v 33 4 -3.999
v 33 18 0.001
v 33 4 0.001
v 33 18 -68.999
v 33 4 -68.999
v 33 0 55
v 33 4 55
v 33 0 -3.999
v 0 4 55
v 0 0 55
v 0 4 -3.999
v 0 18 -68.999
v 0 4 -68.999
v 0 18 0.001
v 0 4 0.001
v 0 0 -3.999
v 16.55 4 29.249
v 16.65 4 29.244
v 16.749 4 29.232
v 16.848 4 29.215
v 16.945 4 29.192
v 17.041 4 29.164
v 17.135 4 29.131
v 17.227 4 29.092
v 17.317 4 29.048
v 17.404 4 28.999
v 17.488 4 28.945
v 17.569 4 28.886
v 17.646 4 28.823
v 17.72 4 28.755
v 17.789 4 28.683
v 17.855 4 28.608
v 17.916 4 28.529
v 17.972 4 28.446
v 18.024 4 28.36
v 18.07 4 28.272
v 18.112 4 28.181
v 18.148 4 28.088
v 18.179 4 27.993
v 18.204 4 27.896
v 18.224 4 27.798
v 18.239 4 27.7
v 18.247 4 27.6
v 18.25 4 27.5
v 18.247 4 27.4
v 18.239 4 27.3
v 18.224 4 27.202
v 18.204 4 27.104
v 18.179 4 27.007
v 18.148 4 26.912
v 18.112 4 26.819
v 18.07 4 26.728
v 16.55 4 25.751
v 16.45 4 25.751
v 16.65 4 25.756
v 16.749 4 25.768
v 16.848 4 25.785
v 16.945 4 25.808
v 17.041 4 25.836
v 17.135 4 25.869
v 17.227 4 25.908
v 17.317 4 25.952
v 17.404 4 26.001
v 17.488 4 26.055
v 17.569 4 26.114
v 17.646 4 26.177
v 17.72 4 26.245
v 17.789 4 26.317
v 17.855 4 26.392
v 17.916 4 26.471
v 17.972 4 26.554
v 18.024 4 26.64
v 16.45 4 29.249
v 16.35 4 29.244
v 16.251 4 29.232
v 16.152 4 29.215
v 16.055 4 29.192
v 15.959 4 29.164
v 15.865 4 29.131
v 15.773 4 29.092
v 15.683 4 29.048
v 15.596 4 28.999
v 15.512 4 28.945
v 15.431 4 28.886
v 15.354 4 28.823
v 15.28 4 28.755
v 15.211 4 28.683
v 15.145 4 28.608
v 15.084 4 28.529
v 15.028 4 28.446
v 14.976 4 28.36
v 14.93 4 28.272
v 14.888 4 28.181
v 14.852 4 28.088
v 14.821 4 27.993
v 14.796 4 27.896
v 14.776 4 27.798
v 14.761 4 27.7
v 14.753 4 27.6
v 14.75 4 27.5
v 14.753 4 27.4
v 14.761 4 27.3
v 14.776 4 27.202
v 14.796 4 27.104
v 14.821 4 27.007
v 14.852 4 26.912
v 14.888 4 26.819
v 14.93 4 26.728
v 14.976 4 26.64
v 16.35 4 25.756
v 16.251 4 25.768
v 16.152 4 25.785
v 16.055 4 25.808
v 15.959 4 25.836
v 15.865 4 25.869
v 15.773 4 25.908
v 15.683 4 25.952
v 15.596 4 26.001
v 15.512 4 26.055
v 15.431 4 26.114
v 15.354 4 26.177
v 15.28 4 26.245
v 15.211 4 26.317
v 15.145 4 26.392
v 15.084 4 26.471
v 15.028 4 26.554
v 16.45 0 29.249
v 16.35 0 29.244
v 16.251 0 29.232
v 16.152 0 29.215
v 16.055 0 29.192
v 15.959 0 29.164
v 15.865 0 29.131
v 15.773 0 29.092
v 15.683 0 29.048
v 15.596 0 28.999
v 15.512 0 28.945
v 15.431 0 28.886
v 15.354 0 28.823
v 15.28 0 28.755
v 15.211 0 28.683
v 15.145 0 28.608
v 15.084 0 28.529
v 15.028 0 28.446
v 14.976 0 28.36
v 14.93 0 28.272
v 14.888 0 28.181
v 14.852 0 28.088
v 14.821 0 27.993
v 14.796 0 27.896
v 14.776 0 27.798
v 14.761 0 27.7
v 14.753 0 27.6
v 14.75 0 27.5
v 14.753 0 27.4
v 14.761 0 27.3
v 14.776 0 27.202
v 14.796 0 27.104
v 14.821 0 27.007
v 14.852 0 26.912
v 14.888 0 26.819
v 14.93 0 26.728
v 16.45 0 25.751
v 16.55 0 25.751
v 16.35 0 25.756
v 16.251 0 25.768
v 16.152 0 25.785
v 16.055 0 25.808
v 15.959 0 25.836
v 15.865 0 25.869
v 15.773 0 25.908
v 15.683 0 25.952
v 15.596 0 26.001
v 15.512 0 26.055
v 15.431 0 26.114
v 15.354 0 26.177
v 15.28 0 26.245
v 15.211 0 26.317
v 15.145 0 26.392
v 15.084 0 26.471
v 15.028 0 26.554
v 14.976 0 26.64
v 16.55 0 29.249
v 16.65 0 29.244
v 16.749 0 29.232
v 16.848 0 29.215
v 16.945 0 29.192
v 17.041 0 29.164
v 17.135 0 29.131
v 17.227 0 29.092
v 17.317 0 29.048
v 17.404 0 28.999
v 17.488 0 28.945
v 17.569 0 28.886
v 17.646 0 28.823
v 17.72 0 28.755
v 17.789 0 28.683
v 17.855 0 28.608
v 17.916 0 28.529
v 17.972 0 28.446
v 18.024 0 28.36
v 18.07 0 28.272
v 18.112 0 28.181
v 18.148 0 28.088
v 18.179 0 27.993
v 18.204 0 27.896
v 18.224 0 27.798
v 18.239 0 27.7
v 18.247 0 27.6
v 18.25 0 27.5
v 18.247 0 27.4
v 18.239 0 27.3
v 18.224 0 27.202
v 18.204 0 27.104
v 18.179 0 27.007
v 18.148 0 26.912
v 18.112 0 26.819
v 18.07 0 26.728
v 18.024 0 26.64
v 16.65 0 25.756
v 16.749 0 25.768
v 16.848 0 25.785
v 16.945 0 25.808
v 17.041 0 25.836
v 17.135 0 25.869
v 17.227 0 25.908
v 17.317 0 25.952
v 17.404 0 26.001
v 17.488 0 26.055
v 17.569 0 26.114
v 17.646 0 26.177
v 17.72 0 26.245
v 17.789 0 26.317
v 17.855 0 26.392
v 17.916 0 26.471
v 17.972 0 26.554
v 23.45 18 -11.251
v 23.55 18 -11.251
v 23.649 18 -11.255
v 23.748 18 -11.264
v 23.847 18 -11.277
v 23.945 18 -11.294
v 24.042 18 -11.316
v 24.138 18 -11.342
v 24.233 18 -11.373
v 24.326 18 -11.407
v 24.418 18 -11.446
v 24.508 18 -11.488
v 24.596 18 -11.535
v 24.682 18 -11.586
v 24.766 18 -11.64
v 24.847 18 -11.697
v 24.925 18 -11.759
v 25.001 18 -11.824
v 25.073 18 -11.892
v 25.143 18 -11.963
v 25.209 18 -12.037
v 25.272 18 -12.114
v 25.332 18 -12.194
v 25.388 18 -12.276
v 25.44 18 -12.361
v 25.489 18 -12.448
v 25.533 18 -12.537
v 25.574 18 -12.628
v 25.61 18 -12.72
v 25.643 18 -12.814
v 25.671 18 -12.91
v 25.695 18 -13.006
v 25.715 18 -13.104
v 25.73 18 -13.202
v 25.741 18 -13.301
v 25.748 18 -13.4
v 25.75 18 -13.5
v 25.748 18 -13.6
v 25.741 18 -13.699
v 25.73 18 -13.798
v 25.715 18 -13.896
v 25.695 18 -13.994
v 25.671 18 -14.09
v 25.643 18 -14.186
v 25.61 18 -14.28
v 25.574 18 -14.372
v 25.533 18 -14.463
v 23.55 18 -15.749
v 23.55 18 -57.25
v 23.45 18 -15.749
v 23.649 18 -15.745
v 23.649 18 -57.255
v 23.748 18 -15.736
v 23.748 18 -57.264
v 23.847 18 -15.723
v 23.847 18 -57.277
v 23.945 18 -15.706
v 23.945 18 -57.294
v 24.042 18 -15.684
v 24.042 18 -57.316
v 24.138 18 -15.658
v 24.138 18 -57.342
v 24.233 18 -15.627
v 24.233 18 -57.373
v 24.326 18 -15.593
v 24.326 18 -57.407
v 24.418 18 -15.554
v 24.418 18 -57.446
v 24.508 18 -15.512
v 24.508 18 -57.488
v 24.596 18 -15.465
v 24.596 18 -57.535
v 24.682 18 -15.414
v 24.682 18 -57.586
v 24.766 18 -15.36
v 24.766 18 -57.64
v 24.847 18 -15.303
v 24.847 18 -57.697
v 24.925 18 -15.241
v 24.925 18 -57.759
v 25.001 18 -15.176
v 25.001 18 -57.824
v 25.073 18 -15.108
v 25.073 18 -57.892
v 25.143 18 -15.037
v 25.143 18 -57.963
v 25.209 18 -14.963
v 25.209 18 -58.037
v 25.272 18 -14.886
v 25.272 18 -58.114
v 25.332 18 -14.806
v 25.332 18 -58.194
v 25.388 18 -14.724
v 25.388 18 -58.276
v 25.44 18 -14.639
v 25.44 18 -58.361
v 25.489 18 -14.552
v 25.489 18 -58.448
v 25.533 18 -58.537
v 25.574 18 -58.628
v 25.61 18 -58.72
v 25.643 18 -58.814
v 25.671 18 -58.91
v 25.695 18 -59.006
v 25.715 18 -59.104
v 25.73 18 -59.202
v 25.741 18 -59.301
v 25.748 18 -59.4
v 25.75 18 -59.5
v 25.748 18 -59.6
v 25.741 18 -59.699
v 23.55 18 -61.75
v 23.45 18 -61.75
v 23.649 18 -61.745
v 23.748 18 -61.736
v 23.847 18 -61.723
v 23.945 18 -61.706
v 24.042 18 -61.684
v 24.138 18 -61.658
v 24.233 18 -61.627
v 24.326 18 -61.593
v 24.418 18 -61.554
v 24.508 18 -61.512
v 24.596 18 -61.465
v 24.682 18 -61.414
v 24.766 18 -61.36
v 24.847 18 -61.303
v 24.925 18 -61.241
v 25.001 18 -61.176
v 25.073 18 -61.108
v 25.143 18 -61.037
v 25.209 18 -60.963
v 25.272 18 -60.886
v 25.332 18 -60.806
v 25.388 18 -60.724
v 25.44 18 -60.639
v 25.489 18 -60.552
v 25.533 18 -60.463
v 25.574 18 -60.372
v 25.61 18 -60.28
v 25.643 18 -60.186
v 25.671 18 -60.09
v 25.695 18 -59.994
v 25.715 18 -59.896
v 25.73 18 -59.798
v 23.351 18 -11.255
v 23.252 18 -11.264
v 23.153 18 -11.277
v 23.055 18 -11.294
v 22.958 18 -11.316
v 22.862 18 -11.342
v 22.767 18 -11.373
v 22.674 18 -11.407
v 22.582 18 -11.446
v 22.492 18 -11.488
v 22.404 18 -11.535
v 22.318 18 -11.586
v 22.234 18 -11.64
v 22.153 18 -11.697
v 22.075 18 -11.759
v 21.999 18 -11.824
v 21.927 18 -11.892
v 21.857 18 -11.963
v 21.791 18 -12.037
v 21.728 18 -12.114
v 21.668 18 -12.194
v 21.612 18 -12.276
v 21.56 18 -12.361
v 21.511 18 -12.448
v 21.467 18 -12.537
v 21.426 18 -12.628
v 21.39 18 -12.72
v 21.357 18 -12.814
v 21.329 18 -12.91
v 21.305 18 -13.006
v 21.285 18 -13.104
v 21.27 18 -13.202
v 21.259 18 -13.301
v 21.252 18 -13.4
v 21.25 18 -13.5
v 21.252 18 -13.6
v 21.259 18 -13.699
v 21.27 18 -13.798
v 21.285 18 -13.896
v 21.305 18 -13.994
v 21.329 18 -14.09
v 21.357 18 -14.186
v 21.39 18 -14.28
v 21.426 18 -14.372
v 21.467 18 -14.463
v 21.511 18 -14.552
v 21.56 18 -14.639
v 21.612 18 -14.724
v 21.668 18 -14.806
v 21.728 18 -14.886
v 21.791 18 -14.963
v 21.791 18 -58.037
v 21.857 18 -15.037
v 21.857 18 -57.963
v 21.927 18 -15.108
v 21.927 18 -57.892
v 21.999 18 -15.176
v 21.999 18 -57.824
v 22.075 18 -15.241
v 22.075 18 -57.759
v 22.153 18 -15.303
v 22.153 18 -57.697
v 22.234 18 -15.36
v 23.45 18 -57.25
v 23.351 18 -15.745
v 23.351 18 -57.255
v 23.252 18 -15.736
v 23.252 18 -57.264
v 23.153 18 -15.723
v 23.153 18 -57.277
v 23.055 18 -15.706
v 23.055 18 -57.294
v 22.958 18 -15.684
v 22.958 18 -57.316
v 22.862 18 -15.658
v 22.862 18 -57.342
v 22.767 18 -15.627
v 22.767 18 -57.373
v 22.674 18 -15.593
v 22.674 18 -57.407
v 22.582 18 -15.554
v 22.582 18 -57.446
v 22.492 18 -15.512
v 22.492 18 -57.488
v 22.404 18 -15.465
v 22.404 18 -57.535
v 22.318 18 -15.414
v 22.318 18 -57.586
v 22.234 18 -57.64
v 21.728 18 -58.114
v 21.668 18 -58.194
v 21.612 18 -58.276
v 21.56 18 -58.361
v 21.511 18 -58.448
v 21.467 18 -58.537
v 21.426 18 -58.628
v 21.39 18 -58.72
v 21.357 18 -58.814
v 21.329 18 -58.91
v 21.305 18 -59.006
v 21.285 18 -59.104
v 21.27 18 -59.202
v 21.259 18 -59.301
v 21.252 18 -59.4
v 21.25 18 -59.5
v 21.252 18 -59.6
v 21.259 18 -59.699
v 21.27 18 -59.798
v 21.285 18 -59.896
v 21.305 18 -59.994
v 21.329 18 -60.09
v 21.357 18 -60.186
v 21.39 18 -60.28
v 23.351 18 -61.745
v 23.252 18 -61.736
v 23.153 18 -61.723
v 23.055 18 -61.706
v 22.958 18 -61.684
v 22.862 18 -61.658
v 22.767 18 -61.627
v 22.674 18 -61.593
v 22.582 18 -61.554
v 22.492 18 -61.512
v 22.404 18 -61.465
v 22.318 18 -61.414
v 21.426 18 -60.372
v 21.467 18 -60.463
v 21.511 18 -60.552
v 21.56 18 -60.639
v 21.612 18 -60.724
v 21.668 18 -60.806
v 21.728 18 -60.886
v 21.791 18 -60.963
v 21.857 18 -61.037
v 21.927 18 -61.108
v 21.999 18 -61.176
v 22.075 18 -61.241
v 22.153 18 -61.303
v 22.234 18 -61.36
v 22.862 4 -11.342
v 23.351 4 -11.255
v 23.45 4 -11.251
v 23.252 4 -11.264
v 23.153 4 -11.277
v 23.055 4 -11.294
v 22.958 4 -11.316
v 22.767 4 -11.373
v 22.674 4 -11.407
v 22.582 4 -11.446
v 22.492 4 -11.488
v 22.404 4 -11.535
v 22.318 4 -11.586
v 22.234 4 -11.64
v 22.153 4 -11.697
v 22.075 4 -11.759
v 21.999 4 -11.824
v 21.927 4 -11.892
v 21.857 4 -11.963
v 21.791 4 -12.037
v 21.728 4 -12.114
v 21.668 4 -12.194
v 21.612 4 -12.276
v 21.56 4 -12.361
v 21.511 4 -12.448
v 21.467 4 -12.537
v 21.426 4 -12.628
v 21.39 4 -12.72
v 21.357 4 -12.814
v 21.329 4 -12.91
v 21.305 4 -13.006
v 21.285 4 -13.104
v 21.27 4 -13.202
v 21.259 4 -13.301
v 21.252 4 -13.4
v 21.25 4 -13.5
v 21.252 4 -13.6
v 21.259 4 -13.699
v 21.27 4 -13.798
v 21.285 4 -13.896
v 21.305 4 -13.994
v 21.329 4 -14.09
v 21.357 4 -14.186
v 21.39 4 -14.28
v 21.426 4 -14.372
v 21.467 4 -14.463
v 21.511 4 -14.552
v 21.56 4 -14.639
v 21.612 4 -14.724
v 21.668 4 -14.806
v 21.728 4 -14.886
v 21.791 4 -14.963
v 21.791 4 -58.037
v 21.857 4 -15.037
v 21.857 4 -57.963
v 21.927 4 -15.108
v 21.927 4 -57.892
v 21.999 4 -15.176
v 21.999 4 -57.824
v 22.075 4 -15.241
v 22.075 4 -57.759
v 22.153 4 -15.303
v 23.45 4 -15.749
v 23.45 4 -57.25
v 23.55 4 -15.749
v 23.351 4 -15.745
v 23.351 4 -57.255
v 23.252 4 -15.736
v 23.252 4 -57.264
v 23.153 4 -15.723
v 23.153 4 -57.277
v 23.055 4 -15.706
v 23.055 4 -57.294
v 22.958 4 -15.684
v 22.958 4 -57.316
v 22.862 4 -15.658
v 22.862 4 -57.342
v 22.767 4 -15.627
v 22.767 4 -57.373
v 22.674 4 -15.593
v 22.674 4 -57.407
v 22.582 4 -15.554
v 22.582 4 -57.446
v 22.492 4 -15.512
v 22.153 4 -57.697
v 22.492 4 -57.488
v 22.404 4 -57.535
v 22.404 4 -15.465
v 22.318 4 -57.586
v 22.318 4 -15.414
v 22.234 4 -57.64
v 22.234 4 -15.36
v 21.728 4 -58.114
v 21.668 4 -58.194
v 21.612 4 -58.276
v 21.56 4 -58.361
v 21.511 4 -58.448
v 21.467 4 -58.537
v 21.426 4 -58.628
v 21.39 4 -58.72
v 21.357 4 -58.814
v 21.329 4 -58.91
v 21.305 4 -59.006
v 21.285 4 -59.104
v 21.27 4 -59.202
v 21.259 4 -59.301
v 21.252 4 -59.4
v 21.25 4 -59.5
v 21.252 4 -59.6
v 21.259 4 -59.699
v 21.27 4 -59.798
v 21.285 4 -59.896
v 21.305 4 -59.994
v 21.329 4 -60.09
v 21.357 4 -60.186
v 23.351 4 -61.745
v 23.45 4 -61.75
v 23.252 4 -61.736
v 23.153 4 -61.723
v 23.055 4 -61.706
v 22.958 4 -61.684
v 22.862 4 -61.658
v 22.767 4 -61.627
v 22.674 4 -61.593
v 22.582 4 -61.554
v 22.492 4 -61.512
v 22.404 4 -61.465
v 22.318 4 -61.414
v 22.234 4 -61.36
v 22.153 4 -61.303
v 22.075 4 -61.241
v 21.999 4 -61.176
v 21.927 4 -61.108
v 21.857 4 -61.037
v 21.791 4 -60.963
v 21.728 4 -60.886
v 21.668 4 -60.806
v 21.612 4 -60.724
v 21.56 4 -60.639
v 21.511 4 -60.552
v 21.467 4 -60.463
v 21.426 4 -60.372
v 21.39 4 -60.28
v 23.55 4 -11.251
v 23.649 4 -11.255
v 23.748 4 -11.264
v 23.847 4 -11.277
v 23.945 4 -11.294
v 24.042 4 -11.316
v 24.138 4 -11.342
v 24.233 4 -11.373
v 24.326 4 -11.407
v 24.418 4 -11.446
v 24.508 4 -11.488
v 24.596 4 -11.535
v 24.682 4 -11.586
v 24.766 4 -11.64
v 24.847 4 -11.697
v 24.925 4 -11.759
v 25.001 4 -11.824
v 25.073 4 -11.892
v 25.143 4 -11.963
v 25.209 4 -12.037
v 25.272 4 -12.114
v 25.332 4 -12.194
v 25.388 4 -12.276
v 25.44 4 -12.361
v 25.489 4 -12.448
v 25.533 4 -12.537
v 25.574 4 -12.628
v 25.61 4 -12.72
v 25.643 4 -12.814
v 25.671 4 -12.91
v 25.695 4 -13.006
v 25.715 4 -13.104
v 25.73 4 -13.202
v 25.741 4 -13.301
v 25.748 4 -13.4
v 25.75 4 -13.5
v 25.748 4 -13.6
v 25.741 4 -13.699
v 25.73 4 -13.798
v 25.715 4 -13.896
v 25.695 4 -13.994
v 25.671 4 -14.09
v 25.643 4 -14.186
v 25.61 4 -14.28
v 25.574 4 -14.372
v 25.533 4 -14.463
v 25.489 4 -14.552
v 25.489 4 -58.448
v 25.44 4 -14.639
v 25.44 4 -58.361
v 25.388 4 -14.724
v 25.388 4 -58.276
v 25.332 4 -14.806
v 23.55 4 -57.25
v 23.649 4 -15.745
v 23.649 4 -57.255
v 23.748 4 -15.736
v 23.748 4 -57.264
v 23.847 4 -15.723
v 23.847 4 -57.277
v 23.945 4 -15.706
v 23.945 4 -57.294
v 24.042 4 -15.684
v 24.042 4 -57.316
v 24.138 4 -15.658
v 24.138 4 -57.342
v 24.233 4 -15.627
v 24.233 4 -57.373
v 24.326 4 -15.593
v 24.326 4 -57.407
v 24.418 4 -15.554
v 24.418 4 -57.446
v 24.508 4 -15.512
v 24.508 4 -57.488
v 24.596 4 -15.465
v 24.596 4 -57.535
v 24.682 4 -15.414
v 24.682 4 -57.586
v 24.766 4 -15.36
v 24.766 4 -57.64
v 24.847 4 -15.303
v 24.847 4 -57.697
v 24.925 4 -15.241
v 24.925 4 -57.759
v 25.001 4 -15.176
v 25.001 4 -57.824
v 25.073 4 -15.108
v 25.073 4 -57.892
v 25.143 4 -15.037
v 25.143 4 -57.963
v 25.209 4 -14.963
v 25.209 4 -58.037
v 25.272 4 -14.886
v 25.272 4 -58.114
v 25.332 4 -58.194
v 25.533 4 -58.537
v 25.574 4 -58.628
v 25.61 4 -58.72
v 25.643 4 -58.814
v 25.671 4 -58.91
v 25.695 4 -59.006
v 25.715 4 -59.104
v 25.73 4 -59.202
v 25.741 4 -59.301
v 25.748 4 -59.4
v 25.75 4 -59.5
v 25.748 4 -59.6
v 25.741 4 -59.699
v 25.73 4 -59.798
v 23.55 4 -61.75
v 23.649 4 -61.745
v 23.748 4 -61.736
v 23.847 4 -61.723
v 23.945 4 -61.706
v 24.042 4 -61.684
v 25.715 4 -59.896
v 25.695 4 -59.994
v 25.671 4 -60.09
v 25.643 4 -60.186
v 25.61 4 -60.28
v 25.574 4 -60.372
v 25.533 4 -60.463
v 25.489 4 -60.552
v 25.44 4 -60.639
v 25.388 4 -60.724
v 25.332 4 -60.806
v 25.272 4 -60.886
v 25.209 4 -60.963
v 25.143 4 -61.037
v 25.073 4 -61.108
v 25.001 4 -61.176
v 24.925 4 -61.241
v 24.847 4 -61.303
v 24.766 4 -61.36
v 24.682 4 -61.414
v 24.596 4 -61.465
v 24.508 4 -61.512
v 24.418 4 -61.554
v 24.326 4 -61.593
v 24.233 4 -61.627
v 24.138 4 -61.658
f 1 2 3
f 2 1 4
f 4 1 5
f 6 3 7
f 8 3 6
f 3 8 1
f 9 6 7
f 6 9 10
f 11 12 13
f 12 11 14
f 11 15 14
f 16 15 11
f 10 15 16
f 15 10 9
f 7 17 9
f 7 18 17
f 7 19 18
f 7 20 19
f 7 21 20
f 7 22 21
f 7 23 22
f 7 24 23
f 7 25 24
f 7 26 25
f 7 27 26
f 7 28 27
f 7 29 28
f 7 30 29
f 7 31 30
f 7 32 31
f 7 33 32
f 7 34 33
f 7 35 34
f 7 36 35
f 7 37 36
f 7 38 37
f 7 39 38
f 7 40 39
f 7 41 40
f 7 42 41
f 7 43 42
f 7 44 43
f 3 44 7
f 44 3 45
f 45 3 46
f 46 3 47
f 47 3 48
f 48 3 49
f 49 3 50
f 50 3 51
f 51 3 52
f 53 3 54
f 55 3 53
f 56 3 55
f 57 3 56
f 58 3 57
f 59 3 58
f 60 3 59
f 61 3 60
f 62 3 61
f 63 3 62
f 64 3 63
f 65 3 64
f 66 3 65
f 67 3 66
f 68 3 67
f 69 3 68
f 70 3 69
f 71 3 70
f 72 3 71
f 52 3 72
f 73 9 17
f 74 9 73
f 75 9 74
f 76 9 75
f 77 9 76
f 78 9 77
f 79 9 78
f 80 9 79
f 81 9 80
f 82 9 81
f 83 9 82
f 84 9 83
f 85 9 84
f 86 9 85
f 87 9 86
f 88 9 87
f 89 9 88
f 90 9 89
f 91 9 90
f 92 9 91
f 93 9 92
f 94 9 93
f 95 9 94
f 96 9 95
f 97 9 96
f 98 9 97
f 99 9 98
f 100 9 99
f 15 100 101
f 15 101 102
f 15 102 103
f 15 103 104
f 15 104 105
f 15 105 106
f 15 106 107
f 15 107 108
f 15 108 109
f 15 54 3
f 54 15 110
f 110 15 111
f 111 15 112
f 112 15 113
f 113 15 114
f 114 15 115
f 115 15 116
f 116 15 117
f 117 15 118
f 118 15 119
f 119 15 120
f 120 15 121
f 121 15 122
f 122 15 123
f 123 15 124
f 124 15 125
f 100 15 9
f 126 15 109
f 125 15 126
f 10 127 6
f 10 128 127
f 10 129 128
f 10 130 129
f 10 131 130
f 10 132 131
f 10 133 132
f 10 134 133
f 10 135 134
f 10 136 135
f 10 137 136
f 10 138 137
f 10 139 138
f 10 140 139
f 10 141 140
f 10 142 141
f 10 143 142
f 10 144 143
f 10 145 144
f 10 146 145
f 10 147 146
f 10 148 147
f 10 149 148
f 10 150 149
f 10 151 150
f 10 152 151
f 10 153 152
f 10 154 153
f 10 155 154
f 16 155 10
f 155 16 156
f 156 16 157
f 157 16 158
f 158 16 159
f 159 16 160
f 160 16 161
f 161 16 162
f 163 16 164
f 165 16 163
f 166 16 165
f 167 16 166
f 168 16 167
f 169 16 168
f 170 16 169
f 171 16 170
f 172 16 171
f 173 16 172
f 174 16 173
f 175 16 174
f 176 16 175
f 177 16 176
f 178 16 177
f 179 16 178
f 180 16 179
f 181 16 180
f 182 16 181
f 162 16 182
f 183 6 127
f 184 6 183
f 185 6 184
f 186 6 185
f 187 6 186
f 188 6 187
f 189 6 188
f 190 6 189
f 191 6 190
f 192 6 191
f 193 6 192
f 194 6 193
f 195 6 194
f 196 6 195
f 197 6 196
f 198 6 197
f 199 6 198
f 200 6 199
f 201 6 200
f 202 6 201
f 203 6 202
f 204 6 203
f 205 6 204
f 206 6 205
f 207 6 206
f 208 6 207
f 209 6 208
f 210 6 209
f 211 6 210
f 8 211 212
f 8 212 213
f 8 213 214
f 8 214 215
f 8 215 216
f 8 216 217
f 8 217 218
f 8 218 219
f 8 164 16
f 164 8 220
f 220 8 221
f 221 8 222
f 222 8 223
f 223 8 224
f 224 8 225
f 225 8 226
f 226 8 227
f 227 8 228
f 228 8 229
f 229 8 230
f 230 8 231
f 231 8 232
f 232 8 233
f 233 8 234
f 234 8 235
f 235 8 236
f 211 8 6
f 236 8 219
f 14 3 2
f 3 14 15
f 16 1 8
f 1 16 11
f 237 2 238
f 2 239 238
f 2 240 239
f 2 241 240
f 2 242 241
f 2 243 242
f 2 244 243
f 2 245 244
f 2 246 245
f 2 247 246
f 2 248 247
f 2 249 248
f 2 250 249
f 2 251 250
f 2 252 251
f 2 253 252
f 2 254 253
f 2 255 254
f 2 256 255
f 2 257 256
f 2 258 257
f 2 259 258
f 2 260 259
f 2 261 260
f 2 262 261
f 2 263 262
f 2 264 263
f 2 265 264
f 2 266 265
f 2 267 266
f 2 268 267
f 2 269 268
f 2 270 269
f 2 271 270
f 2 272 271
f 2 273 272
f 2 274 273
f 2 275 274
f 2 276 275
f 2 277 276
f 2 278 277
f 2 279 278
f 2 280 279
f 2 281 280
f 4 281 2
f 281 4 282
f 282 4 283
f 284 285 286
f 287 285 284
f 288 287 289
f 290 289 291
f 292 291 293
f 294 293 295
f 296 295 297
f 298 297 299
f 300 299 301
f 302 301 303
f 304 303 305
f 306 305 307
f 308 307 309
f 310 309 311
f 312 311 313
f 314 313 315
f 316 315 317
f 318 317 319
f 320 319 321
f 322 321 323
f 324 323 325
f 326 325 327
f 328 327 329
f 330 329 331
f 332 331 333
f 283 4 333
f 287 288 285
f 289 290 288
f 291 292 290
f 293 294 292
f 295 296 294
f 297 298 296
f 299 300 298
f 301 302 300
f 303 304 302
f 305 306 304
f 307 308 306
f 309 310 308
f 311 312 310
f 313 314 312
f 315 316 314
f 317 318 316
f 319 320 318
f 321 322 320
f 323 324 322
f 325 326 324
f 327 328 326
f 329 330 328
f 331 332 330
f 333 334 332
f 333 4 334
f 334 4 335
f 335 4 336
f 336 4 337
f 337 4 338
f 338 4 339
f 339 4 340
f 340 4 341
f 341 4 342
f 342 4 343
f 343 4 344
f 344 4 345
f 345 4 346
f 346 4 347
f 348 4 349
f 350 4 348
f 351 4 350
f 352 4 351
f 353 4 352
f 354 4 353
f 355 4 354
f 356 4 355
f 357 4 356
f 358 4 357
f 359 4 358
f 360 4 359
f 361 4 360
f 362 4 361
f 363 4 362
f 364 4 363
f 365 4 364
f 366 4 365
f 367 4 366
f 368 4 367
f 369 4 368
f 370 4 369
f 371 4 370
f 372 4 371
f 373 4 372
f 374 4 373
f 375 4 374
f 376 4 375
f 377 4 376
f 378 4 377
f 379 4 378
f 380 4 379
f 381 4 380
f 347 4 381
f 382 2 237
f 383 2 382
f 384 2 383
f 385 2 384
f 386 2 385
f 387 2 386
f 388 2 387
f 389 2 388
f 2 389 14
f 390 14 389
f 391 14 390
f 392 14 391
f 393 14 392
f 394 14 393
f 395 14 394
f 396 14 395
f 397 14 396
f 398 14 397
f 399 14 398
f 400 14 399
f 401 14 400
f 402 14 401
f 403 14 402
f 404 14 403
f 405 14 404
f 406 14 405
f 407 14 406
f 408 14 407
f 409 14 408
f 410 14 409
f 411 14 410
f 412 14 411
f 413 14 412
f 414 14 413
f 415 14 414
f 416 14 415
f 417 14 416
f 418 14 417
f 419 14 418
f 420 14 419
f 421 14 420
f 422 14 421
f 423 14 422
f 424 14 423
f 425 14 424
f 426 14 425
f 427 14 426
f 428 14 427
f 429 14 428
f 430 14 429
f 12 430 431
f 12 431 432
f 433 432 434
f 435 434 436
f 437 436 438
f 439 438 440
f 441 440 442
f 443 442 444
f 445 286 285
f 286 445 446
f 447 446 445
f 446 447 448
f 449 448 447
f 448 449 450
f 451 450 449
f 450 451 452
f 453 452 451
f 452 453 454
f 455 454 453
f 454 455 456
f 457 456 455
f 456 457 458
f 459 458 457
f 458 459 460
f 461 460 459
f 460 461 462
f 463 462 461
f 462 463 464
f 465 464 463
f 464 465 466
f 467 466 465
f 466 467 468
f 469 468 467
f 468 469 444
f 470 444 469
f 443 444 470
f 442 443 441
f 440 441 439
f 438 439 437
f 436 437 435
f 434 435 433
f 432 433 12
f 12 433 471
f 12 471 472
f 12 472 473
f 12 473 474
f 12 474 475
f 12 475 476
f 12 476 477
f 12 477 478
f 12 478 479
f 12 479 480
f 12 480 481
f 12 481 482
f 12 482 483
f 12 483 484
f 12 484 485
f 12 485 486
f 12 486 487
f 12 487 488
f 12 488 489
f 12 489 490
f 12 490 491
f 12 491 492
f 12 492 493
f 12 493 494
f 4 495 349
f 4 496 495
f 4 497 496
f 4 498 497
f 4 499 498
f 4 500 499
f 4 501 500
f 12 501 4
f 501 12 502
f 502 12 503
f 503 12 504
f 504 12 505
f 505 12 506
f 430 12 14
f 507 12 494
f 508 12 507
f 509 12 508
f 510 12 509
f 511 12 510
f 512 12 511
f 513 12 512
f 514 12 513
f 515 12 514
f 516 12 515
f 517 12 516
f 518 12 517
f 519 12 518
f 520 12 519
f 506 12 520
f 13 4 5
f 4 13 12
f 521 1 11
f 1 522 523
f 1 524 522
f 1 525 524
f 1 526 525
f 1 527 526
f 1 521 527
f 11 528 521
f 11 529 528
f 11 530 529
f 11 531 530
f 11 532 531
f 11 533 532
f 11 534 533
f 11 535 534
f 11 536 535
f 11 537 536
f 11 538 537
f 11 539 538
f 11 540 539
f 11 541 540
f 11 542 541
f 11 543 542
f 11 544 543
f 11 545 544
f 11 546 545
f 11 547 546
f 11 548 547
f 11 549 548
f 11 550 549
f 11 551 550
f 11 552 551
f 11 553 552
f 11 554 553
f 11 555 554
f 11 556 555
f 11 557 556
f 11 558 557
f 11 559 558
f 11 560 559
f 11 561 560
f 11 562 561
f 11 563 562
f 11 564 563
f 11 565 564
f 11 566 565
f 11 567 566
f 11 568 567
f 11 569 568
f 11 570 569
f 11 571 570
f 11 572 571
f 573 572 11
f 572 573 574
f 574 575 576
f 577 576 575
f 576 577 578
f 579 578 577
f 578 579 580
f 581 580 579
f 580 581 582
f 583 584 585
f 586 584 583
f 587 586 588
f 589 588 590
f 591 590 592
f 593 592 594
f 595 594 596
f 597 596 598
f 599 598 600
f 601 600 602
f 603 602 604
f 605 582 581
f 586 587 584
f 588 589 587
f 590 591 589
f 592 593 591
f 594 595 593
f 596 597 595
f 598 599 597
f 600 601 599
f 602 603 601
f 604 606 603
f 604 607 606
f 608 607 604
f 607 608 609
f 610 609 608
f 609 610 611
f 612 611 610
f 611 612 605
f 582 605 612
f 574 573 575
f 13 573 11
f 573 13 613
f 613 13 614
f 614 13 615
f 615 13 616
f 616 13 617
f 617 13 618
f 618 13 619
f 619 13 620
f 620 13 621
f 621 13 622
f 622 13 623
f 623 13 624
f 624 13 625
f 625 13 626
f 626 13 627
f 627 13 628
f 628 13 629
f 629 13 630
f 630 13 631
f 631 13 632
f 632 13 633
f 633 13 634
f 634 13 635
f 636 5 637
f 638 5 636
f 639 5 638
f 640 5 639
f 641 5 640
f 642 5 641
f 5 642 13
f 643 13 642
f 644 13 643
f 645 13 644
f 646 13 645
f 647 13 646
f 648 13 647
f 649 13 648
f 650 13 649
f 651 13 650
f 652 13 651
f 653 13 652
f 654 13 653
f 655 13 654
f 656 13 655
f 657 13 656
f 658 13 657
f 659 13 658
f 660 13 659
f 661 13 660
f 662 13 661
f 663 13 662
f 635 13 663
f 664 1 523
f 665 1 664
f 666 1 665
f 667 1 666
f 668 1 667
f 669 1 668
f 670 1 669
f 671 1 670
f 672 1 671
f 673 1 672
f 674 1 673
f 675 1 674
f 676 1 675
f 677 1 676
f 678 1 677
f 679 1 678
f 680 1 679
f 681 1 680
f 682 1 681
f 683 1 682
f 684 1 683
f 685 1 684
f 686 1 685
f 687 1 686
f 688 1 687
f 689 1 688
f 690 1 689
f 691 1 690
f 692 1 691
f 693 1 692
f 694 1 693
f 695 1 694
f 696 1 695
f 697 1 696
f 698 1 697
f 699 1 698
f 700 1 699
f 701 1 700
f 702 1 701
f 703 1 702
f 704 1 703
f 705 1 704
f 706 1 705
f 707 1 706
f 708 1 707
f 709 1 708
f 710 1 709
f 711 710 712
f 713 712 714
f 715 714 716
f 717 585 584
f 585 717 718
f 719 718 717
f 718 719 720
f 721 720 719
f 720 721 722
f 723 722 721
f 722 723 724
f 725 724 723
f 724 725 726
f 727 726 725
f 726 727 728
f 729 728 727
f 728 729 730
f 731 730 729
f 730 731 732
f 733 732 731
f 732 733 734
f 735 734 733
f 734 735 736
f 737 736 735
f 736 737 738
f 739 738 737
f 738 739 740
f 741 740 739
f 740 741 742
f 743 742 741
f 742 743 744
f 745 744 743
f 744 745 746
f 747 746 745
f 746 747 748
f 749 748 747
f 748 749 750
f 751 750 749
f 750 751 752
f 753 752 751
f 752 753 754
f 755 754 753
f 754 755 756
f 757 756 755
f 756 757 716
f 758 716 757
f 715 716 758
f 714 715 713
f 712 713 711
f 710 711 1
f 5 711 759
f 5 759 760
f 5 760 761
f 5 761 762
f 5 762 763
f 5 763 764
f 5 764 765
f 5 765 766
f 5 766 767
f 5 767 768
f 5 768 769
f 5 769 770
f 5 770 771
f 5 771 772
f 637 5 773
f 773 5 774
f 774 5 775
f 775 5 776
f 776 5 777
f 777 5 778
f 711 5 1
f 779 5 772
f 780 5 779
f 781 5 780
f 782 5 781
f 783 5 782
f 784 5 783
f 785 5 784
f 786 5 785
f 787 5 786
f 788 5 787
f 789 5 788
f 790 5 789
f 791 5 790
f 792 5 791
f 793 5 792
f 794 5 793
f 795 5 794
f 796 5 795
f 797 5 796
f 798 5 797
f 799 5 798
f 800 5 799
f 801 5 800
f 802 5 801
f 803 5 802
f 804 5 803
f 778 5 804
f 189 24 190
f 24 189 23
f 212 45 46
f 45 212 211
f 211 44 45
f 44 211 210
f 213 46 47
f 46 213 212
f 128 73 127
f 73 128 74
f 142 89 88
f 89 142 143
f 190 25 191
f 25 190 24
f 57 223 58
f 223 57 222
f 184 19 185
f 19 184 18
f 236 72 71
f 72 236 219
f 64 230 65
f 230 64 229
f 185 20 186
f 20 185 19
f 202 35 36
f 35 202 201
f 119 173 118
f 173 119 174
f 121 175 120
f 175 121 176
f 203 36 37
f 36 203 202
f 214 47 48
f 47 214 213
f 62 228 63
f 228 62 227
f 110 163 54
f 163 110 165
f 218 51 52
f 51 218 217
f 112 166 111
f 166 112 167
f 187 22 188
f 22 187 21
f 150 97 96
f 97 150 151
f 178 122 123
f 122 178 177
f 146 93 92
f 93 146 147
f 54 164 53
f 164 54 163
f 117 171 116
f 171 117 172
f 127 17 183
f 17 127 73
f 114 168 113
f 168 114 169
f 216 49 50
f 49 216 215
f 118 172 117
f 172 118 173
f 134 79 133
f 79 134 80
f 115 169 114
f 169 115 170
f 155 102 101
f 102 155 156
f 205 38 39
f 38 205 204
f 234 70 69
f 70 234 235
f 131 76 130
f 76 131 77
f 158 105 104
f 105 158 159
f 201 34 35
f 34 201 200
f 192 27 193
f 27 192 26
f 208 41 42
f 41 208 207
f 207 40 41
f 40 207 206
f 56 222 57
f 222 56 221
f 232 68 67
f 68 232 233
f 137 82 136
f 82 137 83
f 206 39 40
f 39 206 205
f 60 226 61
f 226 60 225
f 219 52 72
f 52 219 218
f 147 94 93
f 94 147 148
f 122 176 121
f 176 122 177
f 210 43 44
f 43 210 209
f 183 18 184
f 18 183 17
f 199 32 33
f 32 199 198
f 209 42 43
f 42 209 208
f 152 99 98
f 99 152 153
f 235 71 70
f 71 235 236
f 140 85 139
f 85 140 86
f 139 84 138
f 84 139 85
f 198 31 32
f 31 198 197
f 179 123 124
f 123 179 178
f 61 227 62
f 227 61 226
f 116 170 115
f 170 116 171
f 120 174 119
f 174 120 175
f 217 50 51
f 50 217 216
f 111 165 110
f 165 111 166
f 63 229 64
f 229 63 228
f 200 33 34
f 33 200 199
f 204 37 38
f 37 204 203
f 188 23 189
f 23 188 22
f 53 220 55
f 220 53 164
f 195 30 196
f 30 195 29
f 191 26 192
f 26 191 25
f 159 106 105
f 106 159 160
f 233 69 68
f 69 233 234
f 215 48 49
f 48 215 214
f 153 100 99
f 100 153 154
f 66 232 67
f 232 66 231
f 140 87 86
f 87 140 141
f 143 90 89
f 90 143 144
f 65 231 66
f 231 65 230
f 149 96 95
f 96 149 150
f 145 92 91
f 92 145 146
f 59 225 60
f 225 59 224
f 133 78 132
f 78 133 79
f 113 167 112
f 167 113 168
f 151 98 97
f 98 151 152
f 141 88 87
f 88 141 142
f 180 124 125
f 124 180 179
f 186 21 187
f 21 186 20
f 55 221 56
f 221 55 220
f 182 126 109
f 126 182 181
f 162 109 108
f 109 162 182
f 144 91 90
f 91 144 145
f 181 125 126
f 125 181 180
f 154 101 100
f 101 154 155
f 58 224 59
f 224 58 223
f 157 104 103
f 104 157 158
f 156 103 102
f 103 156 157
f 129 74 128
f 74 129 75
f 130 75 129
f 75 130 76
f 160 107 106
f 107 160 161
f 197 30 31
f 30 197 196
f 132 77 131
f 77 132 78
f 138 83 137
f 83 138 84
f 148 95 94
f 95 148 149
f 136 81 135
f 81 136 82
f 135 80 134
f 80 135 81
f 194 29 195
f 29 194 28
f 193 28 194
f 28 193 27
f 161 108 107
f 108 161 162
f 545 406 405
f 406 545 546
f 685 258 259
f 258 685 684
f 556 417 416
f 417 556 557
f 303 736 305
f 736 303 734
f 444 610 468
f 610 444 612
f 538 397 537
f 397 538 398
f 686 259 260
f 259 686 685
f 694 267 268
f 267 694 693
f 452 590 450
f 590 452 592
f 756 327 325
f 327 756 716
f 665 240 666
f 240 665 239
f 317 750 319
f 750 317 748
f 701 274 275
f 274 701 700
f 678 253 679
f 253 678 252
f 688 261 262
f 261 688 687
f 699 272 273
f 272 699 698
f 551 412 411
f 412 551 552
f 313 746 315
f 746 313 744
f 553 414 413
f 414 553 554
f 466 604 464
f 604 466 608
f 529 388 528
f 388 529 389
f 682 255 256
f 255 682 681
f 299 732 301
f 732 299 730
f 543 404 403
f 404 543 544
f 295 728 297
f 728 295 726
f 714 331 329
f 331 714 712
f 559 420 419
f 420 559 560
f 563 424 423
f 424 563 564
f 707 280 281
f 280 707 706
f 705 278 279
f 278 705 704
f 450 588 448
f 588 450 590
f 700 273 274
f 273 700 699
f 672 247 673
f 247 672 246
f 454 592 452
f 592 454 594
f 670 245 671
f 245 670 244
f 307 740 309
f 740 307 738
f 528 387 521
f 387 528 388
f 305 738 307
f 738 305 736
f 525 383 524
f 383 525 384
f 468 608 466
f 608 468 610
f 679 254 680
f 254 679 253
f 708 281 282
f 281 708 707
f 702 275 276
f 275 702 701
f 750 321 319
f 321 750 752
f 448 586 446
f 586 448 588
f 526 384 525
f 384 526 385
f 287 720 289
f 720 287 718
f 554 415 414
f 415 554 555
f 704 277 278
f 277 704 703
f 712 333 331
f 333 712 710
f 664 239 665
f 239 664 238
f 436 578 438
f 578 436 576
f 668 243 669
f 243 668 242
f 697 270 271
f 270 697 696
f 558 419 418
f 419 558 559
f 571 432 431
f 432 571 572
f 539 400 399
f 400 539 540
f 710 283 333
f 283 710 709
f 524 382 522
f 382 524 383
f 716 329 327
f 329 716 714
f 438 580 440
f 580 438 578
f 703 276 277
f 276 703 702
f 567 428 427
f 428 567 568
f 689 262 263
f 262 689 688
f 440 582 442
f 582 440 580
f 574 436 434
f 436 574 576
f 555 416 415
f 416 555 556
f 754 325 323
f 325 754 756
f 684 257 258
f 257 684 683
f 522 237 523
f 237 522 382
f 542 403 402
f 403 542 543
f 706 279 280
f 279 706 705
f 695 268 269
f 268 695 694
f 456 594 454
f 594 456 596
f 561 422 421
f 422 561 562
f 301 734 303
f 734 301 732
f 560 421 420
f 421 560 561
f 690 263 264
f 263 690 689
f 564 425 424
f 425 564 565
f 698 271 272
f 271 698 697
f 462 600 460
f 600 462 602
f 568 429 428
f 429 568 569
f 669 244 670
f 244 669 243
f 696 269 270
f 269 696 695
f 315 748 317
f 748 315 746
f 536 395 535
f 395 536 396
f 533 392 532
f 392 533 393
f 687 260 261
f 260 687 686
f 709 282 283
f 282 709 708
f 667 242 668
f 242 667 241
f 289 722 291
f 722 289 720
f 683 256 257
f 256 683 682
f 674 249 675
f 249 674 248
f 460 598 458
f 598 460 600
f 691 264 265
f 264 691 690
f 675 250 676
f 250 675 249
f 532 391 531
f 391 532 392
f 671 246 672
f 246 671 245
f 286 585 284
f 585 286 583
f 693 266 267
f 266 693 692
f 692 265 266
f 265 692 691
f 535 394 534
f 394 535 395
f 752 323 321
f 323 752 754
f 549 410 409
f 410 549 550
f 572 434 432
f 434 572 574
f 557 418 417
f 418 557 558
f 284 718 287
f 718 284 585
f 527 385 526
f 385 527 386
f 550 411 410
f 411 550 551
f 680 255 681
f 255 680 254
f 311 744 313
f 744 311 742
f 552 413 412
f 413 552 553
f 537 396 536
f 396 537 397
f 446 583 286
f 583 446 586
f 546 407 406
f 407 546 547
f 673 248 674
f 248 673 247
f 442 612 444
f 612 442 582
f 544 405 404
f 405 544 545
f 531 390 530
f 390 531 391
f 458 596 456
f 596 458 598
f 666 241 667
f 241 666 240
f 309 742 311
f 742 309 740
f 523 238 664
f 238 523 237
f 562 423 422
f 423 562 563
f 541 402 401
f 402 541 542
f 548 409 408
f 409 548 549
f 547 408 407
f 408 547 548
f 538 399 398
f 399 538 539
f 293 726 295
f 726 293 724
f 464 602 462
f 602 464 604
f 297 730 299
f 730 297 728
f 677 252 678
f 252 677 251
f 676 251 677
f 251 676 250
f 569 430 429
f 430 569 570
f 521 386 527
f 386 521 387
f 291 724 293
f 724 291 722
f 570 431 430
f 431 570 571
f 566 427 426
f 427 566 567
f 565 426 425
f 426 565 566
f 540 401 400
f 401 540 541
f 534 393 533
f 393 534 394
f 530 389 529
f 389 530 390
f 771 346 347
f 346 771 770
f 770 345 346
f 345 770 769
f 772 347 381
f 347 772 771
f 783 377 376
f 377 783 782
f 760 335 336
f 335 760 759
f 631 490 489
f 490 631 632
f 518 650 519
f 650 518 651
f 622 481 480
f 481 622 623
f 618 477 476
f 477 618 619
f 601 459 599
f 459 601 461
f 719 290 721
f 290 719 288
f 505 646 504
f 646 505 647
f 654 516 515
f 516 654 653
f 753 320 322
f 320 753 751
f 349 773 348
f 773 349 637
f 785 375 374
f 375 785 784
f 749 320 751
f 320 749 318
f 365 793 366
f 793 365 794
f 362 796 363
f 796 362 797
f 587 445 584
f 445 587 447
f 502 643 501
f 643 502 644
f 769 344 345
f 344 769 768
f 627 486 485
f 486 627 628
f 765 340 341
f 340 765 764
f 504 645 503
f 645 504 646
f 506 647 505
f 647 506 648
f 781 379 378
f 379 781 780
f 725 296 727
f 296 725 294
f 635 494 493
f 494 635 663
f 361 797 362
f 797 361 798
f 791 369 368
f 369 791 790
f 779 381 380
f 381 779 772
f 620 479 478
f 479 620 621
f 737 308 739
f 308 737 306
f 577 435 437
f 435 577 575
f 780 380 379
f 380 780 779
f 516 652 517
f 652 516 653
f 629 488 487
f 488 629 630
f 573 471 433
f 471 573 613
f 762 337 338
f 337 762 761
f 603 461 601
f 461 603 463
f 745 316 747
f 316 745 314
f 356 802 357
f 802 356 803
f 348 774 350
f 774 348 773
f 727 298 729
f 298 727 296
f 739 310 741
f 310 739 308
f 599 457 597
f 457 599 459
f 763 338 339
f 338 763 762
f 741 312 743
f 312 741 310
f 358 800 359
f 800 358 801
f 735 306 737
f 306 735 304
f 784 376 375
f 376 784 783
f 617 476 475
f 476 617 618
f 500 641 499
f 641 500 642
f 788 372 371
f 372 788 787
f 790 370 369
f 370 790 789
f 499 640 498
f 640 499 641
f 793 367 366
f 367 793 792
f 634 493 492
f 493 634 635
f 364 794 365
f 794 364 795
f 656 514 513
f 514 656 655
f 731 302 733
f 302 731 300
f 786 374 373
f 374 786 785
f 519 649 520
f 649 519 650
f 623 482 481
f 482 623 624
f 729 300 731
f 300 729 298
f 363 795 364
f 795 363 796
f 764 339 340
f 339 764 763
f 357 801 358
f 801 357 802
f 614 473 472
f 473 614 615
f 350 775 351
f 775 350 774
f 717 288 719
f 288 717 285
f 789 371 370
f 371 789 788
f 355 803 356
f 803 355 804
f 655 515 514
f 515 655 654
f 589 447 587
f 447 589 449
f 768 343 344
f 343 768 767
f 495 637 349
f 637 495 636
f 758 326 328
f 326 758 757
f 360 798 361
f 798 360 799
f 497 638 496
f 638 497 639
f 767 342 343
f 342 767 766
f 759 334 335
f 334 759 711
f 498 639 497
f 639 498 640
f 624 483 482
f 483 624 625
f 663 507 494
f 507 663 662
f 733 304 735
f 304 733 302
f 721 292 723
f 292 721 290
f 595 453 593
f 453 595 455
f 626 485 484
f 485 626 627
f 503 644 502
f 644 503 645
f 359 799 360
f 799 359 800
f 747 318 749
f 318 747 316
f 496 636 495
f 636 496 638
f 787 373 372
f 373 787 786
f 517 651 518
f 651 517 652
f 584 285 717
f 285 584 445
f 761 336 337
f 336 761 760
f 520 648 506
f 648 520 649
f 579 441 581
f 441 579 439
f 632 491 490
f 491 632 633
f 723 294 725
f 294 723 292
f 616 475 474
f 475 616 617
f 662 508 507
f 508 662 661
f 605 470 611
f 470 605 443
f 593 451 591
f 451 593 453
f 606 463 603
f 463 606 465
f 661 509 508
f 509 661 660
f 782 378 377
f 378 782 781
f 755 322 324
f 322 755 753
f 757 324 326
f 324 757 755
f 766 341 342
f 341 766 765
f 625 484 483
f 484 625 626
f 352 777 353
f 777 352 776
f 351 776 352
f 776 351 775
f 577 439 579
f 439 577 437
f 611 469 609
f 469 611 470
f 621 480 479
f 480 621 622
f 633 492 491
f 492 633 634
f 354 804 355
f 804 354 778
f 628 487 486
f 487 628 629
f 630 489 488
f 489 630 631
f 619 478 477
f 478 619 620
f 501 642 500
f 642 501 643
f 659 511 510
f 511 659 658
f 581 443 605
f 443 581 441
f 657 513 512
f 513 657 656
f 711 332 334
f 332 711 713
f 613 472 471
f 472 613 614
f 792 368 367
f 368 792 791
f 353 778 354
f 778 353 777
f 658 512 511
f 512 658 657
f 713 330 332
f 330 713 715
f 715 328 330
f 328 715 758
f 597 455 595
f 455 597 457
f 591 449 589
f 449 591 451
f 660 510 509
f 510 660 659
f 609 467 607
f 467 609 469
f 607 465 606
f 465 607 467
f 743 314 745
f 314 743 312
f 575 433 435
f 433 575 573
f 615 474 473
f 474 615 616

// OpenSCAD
// Stair Gate Latch

eps = 0.001;
$fa = 1.0;
$fs = 0.1;

plate_w = 33;
plate_h = 55;
plate_d = 4;

adapter_w = 33;
adapter_h = 65;
adapter_d = 14;

connector_w = plate_w;
connector_h = 4;
connector_d = adapter_d + plate_d;

hole_radius = 3.5/2;
hole_origin_x = plate_w/2;
hole_origin_y = 0;
hole_origin_z = plate_h/2;

insert_radius = 4.5/2;
insert_offset = 9.5;
insert_origin_x = adapter_w - insert_offset;
insert_origin_y = plate_d;

// Main
difference() {
  union () {
    cube([plate_w, plate_d, plate_h]);
    translate([0, 0, -connector_h + eps])
      color("green") cube([connector_w, connector_d, connector_h]);
    translate([0, plate_d, -connector_h -adapter_h + eps])
      cube([adapter_w, adapter_d, adapter_h]);
  }
  translate([hole_origin_x, hole_origin_y - eps, hole_origin_z])
    rotate([-90, 0, 0])
      color("red") cylinder(h=plate_d + 2 * eps, r=hole_radius);
  translate([adapter_w - insert_offset, insert_origin_y - eps, -connector_h -insert_offset])
    rotate([-90, 0, 0])
      color("red") cylinder(h=adapter_d + 2 * eps, r=insert_radius);
  translate([adapter_w - insert_offset, insert_origin_y - eps, -connector_h -adapter_h + insert_offset])
    rotate([-90, 0, 0])
      color("red") cylinder(h=adapter_d + 2 * eps, r=insert_radius);
}
